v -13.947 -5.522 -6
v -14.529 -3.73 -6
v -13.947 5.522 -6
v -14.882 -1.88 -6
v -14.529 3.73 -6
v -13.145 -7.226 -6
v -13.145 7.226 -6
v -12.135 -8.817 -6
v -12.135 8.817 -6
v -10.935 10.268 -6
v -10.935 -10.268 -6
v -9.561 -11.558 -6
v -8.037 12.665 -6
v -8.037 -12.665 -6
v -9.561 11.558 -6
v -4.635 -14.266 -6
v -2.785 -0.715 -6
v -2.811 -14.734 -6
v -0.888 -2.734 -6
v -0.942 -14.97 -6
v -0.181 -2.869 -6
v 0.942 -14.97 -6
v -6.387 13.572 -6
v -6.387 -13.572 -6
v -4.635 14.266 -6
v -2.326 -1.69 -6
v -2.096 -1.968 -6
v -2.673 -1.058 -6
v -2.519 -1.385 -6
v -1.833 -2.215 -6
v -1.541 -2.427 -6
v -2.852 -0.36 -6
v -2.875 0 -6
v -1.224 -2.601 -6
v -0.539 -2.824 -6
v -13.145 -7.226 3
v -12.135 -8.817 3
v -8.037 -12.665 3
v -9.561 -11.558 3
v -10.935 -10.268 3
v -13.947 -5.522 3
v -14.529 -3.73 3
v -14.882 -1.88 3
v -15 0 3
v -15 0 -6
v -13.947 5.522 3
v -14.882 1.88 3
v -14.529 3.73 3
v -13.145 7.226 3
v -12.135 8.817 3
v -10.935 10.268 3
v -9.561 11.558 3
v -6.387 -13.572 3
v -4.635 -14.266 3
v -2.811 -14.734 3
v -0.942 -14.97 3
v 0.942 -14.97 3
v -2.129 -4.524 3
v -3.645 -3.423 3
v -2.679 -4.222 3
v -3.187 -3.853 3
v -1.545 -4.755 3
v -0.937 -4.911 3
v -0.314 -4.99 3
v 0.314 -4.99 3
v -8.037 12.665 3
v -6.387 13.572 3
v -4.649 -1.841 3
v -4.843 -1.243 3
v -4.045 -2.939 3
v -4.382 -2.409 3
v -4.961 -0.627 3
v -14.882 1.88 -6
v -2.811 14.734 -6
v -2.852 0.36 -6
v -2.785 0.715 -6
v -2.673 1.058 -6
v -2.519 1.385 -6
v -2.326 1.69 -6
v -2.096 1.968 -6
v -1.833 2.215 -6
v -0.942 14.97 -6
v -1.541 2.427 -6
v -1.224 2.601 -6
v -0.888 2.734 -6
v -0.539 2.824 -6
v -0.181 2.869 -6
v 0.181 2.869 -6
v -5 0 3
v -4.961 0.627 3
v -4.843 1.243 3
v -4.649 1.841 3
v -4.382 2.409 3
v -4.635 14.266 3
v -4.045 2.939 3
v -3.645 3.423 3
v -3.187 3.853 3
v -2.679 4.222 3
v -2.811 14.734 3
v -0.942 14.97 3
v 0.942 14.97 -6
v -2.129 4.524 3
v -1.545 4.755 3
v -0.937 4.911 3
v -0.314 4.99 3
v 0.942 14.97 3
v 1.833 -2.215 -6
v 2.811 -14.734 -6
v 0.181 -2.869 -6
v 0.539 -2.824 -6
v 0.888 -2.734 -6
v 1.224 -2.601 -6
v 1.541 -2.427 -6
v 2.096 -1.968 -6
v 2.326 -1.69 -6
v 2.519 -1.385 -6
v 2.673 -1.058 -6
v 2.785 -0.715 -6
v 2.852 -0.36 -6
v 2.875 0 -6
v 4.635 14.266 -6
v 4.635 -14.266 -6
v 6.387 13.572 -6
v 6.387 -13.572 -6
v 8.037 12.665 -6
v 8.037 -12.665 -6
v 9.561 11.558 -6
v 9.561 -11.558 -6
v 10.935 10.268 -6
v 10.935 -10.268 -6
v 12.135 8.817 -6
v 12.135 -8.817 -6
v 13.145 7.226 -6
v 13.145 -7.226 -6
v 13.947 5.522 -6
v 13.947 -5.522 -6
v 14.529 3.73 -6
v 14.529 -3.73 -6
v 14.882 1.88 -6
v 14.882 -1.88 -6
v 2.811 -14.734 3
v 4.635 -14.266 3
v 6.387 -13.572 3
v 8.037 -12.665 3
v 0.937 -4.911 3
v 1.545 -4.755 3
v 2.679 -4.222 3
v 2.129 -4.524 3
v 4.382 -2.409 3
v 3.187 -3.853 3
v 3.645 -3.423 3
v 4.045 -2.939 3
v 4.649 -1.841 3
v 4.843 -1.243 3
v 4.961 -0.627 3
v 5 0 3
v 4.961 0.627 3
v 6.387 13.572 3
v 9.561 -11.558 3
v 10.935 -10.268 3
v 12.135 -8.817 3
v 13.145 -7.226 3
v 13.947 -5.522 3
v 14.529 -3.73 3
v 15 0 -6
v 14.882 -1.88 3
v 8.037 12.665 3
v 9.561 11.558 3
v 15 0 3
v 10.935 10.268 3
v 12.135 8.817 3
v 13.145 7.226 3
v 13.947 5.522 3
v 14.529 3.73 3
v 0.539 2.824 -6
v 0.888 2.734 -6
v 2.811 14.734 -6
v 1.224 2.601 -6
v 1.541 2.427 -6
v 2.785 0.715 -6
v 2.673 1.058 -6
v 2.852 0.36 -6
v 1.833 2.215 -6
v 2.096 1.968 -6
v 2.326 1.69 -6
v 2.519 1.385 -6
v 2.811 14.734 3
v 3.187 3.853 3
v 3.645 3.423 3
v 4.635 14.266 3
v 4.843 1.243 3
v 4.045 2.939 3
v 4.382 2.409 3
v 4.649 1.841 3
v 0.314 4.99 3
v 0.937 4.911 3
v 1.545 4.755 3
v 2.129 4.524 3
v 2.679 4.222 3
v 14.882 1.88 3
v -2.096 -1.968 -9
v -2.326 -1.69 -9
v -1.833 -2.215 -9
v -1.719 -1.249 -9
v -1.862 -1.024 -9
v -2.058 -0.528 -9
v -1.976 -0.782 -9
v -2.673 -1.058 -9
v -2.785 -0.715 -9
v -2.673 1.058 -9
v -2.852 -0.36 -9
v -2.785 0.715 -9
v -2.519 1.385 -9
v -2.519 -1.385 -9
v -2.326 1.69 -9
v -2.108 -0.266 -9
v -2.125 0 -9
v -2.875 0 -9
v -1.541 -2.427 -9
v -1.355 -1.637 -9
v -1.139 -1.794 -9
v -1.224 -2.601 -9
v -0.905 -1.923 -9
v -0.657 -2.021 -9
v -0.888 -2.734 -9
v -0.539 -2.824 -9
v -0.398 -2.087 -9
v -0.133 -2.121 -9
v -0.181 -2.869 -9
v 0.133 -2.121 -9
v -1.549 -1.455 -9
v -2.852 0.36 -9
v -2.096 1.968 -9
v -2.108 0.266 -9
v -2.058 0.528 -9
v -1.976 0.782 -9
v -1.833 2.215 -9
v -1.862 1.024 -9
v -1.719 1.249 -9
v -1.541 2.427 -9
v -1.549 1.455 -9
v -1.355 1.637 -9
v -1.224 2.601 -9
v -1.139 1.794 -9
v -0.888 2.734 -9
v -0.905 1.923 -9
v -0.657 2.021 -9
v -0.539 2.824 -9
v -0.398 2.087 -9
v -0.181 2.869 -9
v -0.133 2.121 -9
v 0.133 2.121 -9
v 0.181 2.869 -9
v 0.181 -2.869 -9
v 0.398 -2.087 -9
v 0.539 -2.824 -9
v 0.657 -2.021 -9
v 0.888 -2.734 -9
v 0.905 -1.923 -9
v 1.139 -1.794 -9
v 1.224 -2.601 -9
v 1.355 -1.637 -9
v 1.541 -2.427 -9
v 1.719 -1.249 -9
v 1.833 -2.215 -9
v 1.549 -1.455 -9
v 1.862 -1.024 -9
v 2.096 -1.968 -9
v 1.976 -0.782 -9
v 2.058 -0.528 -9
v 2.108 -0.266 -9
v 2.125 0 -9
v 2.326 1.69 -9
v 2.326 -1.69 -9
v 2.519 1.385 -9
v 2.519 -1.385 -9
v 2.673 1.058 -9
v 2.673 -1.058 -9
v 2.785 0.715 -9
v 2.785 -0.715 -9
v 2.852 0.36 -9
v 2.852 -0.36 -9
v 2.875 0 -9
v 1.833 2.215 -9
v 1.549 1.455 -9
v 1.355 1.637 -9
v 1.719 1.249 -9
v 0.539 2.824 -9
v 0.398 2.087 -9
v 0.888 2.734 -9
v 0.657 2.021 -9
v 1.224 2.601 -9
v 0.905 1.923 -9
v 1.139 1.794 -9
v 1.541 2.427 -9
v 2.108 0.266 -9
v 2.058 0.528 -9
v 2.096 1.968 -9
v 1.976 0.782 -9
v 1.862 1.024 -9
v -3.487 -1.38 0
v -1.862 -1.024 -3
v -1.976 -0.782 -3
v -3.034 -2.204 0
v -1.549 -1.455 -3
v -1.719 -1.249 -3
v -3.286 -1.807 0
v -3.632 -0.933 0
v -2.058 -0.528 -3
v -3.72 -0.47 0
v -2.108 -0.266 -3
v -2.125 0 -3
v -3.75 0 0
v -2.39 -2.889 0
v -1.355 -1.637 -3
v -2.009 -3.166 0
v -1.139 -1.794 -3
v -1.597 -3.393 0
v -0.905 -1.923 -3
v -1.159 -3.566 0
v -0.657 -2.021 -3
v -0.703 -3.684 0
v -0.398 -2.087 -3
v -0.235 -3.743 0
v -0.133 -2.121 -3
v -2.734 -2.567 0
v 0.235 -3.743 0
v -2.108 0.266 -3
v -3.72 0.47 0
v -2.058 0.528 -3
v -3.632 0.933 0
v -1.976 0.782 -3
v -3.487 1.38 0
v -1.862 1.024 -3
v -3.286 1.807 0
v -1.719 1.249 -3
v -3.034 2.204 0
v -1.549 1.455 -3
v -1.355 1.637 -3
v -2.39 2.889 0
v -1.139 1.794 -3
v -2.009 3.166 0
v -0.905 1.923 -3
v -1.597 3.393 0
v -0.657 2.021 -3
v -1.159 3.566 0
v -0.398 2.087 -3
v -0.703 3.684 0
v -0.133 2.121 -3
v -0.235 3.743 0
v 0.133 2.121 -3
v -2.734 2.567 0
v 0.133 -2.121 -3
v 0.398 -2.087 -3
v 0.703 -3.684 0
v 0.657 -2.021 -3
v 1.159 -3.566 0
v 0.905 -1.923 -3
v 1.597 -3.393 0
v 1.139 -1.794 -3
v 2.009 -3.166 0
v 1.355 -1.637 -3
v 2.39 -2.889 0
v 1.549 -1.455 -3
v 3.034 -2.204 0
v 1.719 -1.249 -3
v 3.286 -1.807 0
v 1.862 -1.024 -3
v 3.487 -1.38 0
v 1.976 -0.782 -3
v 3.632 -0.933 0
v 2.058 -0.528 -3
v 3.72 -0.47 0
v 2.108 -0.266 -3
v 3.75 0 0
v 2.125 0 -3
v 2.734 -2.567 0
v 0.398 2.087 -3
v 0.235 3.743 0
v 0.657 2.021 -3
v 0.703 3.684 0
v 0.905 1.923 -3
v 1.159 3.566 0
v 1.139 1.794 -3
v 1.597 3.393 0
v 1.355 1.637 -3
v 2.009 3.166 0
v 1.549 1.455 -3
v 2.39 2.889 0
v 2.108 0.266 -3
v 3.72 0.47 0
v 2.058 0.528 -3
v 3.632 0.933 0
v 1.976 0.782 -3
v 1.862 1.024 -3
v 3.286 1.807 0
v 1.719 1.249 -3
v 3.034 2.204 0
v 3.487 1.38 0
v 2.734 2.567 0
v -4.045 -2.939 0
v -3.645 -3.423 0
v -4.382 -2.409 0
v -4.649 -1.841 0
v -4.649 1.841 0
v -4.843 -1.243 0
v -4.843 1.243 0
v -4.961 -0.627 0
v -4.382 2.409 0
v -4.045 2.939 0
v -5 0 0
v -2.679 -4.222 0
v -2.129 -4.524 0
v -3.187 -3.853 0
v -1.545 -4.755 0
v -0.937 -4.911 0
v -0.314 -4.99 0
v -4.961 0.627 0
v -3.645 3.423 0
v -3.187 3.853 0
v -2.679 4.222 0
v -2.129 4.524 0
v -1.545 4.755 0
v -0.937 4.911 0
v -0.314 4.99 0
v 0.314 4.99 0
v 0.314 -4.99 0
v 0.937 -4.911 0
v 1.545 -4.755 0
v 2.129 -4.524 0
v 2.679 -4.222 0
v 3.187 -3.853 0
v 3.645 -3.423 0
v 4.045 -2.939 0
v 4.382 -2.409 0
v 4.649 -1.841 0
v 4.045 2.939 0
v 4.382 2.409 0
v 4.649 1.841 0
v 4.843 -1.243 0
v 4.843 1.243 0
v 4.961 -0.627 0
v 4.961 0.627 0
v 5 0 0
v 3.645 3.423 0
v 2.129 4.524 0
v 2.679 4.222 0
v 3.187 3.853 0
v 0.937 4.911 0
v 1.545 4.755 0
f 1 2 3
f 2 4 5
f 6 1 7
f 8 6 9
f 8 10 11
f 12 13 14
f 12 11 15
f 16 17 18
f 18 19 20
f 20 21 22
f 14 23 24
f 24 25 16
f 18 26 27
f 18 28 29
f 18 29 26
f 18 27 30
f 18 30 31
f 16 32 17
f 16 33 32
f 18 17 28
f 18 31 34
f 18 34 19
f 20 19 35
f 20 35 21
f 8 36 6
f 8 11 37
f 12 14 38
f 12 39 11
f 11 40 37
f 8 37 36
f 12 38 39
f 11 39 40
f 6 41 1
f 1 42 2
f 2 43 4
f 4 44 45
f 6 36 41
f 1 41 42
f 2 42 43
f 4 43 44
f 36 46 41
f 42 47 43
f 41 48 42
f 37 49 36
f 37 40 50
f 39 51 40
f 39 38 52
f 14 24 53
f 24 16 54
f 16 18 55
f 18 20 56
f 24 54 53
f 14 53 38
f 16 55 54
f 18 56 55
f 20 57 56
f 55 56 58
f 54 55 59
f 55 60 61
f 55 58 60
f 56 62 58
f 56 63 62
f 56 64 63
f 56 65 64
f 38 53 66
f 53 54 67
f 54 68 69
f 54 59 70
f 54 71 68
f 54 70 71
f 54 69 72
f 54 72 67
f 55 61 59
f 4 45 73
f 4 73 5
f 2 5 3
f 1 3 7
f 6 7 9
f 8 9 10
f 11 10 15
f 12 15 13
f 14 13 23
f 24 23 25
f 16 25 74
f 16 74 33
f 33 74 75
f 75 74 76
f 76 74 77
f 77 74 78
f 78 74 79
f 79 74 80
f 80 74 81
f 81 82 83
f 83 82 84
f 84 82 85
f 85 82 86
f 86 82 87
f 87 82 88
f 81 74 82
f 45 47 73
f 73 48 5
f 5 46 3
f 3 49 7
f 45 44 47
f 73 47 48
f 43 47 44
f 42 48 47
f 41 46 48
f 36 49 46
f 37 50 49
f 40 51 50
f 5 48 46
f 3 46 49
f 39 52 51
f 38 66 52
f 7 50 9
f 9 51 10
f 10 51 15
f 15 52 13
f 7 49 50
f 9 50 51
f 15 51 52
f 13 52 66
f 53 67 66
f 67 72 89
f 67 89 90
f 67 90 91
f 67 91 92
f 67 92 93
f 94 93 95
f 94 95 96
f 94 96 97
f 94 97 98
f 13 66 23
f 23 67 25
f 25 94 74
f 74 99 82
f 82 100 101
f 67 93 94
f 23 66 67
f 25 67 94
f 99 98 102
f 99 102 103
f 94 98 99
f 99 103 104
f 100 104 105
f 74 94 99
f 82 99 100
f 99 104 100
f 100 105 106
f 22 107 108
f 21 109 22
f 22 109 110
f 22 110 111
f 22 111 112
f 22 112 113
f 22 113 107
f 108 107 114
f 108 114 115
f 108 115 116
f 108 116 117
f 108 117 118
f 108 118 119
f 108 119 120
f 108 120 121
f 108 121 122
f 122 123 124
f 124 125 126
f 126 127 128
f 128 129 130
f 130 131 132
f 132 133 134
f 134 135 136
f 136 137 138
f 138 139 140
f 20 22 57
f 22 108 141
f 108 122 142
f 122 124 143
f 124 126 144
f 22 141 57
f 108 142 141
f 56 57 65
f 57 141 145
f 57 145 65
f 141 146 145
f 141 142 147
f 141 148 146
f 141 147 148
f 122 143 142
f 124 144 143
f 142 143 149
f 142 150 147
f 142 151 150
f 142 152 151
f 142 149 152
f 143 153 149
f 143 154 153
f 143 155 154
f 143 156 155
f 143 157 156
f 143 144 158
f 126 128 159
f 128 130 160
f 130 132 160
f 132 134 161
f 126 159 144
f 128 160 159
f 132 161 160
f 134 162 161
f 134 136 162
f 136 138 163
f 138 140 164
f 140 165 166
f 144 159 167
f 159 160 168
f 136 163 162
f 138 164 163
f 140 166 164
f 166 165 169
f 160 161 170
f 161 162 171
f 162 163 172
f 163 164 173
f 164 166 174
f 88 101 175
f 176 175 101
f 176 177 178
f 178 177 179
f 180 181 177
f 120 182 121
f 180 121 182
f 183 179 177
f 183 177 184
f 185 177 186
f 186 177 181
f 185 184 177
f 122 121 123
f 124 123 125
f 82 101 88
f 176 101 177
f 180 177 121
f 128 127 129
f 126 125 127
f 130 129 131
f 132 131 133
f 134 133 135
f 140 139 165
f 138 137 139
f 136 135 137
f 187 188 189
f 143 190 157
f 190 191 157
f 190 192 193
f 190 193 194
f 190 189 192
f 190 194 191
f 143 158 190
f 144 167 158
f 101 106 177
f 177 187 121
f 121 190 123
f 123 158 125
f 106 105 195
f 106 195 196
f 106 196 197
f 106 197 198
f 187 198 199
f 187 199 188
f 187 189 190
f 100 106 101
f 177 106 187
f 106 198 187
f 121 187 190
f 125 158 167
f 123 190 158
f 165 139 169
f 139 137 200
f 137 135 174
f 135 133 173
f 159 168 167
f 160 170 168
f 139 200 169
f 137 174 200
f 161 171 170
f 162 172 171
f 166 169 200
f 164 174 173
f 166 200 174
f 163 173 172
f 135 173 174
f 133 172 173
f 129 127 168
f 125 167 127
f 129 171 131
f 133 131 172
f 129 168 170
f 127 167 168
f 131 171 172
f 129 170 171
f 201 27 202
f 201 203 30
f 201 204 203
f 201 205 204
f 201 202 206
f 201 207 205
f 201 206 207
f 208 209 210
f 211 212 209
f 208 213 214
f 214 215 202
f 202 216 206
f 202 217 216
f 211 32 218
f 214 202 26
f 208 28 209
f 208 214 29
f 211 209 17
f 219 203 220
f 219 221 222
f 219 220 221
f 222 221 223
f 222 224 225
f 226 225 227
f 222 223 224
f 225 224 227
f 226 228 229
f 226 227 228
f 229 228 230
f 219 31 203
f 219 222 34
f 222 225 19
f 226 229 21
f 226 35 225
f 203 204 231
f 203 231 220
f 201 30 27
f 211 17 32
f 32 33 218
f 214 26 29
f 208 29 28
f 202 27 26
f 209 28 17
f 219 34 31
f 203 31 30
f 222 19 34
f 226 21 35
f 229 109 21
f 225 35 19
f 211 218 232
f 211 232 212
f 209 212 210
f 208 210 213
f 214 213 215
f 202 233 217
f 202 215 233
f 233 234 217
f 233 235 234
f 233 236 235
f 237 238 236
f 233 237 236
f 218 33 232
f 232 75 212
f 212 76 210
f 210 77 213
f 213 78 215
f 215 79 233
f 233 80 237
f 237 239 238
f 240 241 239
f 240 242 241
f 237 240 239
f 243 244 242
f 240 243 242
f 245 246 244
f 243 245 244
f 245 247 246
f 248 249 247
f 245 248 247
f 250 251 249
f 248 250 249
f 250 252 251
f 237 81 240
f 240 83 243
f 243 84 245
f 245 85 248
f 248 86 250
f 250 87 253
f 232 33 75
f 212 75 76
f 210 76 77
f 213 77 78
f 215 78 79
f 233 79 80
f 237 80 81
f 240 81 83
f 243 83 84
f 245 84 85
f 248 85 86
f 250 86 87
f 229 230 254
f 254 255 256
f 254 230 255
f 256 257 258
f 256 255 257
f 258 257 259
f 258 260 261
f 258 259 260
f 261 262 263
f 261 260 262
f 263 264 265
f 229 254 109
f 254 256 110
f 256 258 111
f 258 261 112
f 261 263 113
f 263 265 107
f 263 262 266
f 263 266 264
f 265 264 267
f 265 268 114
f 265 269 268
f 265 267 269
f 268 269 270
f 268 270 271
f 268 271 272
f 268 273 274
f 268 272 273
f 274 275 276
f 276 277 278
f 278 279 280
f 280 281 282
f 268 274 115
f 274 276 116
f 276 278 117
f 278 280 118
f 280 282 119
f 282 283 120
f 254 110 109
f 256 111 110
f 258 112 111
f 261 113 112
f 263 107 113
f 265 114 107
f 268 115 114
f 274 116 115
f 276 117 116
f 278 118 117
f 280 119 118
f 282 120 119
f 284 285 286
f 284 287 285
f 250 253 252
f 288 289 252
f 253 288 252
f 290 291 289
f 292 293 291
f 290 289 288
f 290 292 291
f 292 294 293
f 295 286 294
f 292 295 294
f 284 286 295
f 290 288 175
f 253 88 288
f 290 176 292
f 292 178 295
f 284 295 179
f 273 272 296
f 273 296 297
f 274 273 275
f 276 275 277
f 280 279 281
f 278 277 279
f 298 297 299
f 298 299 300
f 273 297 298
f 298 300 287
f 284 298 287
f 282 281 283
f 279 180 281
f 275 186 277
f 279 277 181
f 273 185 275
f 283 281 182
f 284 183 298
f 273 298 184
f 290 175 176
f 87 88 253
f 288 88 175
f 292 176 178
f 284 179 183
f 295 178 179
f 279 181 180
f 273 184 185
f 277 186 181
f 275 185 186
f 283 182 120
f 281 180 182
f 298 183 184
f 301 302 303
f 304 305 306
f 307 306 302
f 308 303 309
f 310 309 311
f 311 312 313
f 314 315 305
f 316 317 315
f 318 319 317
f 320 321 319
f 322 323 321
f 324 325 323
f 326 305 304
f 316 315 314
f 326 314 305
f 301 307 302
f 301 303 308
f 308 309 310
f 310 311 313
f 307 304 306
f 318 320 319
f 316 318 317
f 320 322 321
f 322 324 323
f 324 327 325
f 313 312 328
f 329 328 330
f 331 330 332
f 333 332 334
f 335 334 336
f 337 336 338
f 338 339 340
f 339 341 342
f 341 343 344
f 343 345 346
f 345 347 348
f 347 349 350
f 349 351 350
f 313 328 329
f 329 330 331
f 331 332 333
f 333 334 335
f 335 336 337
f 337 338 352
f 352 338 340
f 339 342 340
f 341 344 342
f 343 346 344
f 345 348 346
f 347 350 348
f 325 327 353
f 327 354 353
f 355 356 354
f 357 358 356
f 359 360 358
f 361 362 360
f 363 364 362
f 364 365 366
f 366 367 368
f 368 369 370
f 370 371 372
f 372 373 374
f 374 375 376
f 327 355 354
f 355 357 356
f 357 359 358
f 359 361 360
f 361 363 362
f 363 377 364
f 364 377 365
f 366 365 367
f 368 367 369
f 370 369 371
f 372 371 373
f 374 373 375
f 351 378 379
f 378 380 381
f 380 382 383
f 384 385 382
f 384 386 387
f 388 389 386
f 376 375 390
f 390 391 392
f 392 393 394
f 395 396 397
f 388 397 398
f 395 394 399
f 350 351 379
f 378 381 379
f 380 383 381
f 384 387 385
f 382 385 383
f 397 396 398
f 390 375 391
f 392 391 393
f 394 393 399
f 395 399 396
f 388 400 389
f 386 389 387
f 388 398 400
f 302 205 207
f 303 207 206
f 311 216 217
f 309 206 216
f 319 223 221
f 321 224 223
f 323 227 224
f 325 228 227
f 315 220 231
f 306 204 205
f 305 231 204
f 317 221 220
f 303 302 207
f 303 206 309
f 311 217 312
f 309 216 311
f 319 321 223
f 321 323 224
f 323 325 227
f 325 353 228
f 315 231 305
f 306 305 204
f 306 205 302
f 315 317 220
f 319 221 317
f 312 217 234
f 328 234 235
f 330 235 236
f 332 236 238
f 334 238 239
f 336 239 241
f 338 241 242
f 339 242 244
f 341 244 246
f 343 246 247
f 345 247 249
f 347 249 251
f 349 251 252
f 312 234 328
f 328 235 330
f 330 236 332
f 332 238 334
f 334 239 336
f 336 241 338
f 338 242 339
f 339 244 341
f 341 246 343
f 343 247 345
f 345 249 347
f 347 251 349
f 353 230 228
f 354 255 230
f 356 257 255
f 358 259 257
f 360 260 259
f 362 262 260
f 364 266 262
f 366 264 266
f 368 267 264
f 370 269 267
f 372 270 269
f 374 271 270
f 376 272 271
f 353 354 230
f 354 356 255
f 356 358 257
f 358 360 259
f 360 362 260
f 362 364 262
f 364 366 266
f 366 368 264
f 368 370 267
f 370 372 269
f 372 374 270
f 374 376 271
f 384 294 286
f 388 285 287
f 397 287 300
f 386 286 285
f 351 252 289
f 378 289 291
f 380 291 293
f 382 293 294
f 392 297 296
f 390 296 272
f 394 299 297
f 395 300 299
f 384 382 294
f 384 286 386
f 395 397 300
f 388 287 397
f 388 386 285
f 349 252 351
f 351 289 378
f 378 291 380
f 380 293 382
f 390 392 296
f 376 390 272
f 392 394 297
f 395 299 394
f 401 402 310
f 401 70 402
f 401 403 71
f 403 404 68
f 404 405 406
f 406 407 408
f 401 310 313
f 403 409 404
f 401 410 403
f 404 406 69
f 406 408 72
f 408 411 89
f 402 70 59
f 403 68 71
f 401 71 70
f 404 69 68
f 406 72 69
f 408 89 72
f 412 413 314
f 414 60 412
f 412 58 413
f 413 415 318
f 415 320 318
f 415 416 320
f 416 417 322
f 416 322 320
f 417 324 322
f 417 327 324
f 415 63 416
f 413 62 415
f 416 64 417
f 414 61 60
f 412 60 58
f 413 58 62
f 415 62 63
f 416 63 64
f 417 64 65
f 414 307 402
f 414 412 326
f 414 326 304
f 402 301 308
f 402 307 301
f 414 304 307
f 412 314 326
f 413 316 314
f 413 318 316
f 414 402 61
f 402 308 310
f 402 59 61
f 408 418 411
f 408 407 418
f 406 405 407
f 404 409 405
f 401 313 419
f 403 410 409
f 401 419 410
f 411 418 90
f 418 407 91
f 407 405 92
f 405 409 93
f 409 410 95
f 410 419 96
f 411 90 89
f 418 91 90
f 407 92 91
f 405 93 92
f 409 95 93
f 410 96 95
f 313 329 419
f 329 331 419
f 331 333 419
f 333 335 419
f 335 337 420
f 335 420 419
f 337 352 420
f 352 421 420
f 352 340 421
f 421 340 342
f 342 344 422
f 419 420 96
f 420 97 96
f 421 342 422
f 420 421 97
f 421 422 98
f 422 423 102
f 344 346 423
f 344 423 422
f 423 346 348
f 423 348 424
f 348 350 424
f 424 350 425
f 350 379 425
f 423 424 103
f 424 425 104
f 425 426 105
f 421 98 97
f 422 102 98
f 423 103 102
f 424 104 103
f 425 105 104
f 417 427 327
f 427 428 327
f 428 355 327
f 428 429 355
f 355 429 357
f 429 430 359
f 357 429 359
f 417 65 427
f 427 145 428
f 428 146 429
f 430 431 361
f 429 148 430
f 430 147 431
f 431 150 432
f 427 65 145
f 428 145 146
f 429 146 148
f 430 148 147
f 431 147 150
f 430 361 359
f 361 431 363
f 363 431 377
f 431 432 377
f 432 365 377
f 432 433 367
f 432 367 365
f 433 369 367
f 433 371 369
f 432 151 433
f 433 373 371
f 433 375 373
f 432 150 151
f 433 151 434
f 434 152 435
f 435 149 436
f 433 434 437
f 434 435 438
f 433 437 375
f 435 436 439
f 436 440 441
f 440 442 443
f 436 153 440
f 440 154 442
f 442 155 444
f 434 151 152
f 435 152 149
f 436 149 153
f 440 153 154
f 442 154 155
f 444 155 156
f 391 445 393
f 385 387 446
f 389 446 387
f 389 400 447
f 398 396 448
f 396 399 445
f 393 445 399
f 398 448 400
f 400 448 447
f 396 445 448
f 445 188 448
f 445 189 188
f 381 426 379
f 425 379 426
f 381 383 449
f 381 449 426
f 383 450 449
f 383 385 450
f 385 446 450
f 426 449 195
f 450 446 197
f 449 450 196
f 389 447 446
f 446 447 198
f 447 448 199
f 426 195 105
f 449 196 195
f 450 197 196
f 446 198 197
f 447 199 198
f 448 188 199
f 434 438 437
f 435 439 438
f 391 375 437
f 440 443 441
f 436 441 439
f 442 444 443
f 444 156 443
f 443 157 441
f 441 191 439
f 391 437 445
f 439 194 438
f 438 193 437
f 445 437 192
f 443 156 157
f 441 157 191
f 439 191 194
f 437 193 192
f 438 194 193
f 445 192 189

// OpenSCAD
$fn = 50;

difference() {
	union() {
		translate(v = [0, 0, -6.0]) {
			cylinder(h = 9, r = 15.0);
		}
		#translate(v = [0, 0, -9.0]) {
			cylinder(h = 9, r = 2.875);
		}
	}
	union() {
		translate(v = [0, 0, 0]) {
			rotate(a = [0, 0, 0]) {
				difference() {
					union() {
						translate(v = [0, 0, -9.0]) {
							cylinder(h = 9, r = 2.0);
						}
						translate(v = [0, 0, -3]) {
							cylinder(h = 3, r1 = 2.125, r2 = 3.75);
						}
						translate(v = [0, 0, -9.0]) {
							cylinder(h = 9, r = 2.125);
						}
						translate(v = [0, 0, -9.0]) {
							cylinder(h = 9, r = 2.0);
						}
					}
					union();
				}
			}
		}
		#cylinder(h = 3, r = 5.0);
	}
}
